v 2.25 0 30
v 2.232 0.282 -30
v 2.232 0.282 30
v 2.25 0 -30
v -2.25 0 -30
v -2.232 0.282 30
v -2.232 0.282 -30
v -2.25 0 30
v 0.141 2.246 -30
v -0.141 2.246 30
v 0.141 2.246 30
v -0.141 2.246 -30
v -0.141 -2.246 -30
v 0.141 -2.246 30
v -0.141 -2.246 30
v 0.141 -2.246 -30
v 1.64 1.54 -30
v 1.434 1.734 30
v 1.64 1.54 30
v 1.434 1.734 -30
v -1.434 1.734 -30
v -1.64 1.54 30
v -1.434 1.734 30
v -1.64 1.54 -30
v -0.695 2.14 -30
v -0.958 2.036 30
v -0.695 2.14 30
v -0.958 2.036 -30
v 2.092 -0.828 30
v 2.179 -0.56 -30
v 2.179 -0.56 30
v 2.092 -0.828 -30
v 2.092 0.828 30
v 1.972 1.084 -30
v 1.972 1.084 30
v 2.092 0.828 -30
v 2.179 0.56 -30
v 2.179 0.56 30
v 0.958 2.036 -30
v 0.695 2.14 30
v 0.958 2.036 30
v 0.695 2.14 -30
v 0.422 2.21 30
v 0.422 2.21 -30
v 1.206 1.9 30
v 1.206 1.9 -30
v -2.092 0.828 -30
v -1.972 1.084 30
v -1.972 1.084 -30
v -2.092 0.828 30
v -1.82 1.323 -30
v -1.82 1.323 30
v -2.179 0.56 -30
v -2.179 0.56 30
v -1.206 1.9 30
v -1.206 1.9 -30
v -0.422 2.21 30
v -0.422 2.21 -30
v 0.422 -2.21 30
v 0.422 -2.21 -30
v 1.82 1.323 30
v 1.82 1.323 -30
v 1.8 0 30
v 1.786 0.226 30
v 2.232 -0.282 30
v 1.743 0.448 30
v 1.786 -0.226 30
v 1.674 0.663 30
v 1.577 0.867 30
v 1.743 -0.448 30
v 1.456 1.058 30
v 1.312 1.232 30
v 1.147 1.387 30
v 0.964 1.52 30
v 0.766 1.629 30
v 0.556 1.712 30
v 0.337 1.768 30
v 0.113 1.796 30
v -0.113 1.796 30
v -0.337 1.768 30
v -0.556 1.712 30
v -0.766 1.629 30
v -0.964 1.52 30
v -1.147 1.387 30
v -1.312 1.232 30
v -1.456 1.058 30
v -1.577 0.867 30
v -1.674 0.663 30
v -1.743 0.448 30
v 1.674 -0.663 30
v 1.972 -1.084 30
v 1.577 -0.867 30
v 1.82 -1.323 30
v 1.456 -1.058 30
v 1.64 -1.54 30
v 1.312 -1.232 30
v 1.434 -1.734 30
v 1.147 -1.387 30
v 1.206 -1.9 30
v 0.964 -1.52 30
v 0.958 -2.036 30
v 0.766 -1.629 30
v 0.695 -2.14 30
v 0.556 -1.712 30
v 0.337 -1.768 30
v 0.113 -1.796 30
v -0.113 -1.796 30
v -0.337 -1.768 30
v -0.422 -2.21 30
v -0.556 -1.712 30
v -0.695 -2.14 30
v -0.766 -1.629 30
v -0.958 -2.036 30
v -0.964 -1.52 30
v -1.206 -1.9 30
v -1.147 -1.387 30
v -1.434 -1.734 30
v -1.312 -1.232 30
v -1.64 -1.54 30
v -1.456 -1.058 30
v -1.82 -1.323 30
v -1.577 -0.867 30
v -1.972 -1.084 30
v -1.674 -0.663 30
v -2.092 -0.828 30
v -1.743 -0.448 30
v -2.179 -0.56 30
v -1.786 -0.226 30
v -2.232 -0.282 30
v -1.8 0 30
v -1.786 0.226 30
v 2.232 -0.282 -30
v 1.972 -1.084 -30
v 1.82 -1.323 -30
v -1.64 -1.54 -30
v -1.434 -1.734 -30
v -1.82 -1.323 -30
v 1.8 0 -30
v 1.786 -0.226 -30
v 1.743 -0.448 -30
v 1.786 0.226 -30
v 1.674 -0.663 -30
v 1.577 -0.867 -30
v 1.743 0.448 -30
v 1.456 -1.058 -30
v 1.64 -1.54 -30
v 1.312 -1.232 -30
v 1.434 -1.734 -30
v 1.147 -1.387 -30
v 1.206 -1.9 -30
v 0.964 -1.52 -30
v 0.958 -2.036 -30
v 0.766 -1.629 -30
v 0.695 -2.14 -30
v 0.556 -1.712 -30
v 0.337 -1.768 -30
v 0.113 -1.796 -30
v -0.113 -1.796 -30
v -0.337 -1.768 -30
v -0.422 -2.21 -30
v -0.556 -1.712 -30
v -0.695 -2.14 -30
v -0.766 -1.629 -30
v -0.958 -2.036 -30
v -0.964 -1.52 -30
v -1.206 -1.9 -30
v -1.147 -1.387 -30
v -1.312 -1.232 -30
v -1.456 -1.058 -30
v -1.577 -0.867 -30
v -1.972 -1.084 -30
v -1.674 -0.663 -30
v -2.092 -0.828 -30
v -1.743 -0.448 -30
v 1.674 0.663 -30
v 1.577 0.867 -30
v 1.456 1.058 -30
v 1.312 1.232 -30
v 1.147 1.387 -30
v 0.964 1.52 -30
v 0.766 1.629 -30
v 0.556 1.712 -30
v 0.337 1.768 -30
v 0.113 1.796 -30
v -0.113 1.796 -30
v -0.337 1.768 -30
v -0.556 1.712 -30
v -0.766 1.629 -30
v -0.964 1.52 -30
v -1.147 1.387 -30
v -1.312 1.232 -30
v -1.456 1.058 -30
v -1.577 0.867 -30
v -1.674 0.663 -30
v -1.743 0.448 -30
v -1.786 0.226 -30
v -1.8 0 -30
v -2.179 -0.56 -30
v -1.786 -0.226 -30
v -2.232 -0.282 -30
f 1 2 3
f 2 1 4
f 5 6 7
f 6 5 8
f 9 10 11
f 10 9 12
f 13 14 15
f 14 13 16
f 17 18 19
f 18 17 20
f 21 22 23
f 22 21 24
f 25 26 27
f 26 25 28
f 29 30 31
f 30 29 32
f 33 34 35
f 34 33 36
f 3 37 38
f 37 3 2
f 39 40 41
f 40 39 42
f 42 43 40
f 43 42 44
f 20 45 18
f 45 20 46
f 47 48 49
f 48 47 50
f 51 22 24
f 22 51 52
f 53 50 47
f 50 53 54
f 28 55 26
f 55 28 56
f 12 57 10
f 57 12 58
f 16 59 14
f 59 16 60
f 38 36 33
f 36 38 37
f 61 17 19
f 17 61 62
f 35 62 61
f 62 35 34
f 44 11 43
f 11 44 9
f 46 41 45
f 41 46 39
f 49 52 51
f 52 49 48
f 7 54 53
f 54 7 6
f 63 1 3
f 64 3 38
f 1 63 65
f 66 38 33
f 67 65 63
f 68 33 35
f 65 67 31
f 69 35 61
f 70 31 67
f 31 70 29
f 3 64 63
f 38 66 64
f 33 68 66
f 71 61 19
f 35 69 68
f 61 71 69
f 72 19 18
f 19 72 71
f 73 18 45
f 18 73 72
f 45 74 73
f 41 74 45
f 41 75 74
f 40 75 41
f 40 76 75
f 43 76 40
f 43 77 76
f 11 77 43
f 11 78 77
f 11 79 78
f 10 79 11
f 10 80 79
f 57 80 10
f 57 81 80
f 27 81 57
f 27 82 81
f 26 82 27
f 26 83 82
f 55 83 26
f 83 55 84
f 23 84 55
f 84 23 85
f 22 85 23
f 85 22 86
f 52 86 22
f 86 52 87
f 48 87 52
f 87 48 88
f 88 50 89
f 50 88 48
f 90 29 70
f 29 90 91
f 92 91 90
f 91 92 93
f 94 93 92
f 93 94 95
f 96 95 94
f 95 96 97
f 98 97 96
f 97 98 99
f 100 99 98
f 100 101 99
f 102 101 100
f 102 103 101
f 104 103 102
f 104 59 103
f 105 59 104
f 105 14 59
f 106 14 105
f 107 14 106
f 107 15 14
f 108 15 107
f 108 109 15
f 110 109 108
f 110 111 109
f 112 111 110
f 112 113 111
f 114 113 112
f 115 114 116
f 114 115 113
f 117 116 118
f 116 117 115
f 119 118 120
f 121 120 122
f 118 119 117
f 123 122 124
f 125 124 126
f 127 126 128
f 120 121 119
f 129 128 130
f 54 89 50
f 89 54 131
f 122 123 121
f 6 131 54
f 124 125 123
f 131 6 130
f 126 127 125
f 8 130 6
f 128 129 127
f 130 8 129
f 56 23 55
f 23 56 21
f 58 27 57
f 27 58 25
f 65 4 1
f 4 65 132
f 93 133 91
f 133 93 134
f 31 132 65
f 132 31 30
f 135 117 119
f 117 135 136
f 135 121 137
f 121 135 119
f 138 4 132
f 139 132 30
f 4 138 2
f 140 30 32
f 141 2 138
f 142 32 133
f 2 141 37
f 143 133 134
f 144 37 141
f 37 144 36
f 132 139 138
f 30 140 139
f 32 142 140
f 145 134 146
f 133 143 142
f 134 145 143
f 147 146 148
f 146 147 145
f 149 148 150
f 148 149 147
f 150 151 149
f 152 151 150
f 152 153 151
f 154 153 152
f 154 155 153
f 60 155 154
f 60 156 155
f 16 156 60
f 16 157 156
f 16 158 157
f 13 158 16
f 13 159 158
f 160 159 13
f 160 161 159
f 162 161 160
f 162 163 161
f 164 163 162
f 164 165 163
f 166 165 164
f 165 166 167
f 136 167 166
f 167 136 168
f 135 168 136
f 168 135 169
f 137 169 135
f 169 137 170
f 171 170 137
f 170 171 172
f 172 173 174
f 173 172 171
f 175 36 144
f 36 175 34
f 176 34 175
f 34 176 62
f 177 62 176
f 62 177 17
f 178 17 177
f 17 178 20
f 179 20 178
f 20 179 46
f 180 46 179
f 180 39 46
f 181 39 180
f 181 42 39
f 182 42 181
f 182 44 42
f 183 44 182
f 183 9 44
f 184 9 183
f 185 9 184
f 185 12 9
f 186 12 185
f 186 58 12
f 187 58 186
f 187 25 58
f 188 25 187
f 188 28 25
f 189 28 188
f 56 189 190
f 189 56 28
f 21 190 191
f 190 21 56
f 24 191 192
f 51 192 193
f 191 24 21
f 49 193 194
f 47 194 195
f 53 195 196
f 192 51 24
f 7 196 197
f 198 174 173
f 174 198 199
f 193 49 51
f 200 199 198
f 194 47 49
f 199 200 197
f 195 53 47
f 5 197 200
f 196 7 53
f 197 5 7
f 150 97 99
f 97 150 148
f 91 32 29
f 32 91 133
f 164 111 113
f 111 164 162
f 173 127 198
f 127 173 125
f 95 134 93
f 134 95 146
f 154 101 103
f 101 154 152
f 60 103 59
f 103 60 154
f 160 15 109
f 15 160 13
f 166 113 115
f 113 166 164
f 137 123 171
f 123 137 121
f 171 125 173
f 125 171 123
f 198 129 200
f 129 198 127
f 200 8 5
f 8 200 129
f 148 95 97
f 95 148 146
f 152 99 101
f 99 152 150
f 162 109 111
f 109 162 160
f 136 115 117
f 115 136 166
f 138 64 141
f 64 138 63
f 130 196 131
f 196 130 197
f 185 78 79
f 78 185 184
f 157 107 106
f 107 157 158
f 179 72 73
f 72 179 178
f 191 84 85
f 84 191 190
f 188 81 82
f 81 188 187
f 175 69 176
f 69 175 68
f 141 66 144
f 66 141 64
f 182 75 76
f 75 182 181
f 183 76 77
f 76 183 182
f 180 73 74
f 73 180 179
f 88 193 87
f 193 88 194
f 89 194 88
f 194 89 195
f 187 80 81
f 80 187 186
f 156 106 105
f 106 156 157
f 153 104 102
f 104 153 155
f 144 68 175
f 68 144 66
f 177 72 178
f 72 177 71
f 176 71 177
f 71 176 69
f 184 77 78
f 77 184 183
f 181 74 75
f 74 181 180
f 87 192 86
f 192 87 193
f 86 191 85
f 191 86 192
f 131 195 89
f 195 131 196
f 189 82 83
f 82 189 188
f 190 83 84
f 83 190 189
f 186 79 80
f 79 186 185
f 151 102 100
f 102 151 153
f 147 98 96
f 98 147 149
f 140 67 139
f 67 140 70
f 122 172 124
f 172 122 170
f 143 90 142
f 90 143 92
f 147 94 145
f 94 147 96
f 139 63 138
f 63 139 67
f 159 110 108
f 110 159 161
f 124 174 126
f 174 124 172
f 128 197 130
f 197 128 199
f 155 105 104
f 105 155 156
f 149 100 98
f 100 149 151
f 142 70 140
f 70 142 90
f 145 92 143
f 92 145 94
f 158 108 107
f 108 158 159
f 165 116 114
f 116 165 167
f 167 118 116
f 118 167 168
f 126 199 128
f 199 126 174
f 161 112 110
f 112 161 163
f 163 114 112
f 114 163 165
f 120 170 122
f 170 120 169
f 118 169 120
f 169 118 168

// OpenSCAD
$fn = 50;


difference() {
	union() {
		translate(v = [0, 0, -30.0000000000]) {
			cylinder(h = 60, r = 2.2500000000);
		}
	}
	union() {
		translate(v = [0, 0, -100.0000000000]) {
			cylinder(h = 200, r = 1.8000000000);
		}
	}
}
